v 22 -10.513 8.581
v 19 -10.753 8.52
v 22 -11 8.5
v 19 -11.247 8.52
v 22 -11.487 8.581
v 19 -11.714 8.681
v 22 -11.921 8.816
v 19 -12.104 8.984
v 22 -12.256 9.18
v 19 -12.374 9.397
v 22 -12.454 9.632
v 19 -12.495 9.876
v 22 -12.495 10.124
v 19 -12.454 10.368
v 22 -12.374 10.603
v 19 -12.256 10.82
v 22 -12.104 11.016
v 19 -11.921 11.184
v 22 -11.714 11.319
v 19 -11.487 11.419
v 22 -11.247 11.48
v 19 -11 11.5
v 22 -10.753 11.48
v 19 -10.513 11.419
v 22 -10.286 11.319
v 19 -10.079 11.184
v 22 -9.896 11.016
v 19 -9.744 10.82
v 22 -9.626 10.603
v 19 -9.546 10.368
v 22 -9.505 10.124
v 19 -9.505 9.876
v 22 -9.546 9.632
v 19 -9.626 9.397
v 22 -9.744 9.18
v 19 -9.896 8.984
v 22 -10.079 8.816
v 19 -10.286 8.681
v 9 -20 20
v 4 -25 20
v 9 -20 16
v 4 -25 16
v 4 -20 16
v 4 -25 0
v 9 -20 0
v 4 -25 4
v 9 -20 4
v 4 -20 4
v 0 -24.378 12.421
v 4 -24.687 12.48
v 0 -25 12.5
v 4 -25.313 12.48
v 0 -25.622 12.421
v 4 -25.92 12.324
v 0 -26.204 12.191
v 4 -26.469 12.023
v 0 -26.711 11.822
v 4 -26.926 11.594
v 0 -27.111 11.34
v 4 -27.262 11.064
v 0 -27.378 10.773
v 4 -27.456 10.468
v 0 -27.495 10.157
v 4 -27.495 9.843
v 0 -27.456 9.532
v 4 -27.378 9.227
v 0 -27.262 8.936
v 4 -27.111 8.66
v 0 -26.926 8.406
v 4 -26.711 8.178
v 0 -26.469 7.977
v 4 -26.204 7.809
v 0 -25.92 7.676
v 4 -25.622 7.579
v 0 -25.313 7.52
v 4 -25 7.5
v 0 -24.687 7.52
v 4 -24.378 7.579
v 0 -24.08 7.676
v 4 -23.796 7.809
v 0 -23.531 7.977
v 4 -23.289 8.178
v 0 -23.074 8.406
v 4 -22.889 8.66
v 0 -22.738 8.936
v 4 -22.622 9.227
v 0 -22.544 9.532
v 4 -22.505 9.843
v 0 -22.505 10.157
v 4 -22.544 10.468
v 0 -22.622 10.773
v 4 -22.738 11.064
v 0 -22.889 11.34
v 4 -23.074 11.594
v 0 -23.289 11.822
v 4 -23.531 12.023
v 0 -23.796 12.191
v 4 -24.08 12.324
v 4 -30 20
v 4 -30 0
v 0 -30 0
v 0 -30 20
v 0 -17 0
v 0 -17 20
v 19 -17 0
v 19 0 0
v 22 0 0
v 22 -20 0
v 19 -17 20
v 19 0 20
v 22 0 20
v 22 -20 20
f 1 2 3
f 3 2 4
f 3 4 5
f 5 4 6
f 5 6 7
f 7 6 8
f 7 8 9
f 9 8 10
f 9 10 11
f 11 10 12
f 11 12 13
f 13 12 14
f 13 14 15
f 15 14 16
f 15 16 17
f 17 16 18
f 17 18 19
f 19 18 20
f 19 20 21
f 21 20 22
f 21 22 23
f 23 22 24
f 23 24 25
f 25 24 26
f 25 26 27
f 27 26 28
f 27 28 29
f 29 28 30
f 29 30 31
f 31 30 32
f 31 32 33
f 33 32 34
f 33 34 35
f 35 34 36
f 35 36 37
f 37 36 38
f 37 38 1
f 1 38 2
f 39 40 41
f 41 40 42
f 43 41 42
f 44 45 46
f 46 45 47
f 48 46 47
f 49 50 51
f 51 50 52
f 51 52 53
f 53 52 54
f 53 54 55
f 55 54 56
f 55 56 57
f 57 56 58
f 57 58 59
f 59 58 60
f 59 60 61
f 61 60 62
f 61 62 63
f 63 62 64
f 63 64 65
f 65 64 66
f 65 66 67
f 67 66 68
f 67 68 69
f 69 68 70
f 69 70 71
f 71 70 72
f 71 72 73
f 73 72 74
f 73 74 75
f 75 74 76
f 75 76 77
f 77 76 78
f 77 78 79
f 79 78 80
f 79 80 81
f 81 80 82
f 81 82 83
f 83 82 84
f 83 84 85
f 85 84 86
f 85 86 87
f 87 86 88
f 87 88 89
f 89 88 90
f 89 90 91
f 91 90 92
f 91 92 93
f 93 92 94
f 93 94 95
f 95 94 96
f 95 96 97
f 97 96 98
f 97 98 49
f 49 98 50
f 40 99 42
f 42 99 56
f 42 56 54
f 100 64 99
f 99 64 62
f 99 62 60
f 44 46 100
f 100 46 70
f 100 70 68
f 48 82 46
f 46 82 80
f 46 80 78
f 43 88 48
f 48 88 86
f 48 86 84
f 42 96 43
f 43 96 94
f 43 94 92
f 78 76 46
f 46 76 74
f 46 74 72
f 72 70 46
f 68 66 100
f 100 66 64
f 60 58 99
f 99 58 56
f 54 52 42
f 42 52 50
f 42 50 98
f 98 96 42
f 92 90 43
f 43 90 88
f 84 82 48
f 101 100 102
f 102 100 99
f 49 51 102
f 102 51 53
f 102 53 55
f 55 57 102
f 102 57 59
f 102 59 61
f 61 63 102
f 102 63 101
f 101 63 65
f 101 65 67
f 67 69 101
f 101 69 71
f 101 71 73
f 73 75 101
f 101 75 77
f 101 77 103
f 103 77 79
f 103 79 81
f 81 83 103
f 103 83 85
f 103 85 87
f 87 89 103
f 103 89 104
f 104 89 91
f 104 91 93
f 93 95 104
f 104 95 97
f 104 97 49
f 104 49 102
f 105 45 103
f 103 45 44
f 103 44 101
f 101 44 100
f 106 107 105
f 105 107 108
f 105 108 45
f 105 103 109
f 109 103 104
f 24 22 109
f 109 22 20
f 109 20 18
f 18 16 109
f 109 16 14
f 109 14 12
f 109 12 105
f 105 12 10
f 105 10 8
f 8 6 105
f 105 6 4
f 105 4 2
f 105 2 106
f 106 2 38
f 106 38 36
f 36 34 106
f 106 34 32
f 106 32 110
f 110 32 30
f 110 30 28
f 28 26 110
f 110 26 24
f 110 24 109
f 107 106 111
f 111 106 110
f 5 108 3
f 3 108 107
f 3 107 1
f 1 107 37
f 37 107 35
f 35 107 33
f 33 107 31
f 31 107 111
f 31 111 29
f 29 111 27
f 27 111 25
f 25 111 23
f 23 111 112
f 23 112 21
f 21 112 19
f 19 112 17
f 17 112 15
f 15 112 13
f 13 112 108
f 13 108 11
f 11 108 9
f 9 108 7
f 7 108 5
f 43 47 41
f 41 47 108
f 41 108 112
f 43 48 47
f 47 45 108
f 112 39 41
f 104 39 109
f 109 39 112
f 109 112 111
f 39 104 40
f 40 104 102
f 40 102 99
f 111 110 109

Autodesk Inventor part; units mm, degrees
ref_plane "YZ Plane" through (0, 0, 0) normal (1, 0, 0) x (0, 1, 0)
ref_plane "XZ Plane" through (0, 0, 0) normal (0, 1, 0) x (-1, 0, 0)
ref_plane "XY Plane" through (0, 0, 0) normal (0, 0, 1) x (1, 0, 0)
sketch "Sketch1" plane through (0, 0, 0) normal (0, 0, 1) x (1, 0, 0)
  line L0 (0, 0) -> (22, 0)
  line L1 (22, 0) -> (22, -20)
  line L2 (22, -20) -> (0, -20)
  line L3 (0, -20) -> (0, 0)
  line L4 (3, 0) -> (19, 0)
  line L5 (19, 0) -> (19, -17)
  line L6 (19, -17) -> (3, -17)
  line L7 (3, -17) -> (3, 0)
  dimension "d0" = 22
  dimension "d1" = 20
  dimension "d2" = 3
  dimension "d3" = 3
  dimension "d4" = 3
extrude "Extrusion1" add sketch "Sketch1" along normal blind 20 contours L0 L7 L6 L5 L1 L2 L3
sketch "Sketch4" plane through (3, -17, 0) normal (1, 0, 0) x (0, 0, -1)
  line L0 (-20, 0) -> (-20, 17) projected
  line L1 (0, 0) -> (-20, 0)
  line L2 (-20, 0) -> (-20, 17)
  line L3 (-20, 17) -> (0, 17)
  line L4 (0, 17) -> (0, 0)
  point P0 (0, 17)
extrude "Extrusion4" cut sketch "Sketch4" against normal through all
sketch "Sketch5" plane through (0, 0, 0) normal (0, 0, -1) x (-1, 0, 0)
  line L0 (0, -20) -> (-22, -20) projected
  line L1 (0, -20) -> (-4, -20)
  line L2 (-4, -20) -> (-4, -30)
  line L3 (-4, -30) -> (0, -30)
  line L4 (0, -30) -> (0, -20)
  point P0 (0, 0)
  dimension "d17" = 4
  dimension "d18" = 10
extrude "Extrusion5" add sketch "Sketch5" against normal blind 20
sketch "Sketch6" plane through (4, -30, 0) normal (1, 0, 0) x (0, 0, -1)
  line L0 (0, 10) -> (-20, 10) projected
  line L1 (0, 10) -> (0, 0) projected
  circle A0 centre (-10, 5) radius 2.5
  point P0 (0, 30)
  dimension "d21" = 5
  dimension "d22" = 10
  dimension "d23" = 5
extrude "Extrusion6" cut sketch "Sketch6" against normal through all
sketch "Sketch7" plane through (0, 0, 0) normal (0, 0, -1) x (-1, 0, 0)
  line L0 (-4, -20) -> (-22, -20) projected
  line L1 (-4, -30) -> (-4, -20) projected
  line L2 (-9, -20) -> (-4, -25)
  point P0 (0, 0)
  dimension "d26" = 5
  dimension "d27" = 5
extrude "Extrusion7" add sketch "Sketch7" against normal blind 4
sketch "Sketch8" plane through (0, 0, 20) normal (0, 0, 1) x (1, 0, 0)
  line L0 (4, -20) -> (22, -20) projected
  line L1 (4, -30) -> (4, -20) projected
  line L2 (9, -20) -> (4, -25)
  point P0 (0, 0)
  dimension "d30" = 5
  dimension "d31" = 5
extrude "Extrusion8" add sketch "Sketch8" against normal blind 4
sketch "Sketch9" plane through (19, -17, 0) normal (-1, 0, 0) x (0, 0, 1)
  line L0 (0, 17) -> (0, 0) projected
  line L1 (0, 0) -> (20, 0) projected
  circle A0 centre (10, 6) radius 1.5
  dimension "d34" = 10
  dimension "d35" = 6
  dimension "d36" = 3
extrude "Extrusion9" cut sketch "Sketch9" against normal through all
equation "\"d3\" = d2"
equation "\"d4\" = d2"
equation "\"d27\" = d26"
equation "\"d30\" = d26"
equation "\"d31\" = d30"
properties part number "LED strip mount v04"
